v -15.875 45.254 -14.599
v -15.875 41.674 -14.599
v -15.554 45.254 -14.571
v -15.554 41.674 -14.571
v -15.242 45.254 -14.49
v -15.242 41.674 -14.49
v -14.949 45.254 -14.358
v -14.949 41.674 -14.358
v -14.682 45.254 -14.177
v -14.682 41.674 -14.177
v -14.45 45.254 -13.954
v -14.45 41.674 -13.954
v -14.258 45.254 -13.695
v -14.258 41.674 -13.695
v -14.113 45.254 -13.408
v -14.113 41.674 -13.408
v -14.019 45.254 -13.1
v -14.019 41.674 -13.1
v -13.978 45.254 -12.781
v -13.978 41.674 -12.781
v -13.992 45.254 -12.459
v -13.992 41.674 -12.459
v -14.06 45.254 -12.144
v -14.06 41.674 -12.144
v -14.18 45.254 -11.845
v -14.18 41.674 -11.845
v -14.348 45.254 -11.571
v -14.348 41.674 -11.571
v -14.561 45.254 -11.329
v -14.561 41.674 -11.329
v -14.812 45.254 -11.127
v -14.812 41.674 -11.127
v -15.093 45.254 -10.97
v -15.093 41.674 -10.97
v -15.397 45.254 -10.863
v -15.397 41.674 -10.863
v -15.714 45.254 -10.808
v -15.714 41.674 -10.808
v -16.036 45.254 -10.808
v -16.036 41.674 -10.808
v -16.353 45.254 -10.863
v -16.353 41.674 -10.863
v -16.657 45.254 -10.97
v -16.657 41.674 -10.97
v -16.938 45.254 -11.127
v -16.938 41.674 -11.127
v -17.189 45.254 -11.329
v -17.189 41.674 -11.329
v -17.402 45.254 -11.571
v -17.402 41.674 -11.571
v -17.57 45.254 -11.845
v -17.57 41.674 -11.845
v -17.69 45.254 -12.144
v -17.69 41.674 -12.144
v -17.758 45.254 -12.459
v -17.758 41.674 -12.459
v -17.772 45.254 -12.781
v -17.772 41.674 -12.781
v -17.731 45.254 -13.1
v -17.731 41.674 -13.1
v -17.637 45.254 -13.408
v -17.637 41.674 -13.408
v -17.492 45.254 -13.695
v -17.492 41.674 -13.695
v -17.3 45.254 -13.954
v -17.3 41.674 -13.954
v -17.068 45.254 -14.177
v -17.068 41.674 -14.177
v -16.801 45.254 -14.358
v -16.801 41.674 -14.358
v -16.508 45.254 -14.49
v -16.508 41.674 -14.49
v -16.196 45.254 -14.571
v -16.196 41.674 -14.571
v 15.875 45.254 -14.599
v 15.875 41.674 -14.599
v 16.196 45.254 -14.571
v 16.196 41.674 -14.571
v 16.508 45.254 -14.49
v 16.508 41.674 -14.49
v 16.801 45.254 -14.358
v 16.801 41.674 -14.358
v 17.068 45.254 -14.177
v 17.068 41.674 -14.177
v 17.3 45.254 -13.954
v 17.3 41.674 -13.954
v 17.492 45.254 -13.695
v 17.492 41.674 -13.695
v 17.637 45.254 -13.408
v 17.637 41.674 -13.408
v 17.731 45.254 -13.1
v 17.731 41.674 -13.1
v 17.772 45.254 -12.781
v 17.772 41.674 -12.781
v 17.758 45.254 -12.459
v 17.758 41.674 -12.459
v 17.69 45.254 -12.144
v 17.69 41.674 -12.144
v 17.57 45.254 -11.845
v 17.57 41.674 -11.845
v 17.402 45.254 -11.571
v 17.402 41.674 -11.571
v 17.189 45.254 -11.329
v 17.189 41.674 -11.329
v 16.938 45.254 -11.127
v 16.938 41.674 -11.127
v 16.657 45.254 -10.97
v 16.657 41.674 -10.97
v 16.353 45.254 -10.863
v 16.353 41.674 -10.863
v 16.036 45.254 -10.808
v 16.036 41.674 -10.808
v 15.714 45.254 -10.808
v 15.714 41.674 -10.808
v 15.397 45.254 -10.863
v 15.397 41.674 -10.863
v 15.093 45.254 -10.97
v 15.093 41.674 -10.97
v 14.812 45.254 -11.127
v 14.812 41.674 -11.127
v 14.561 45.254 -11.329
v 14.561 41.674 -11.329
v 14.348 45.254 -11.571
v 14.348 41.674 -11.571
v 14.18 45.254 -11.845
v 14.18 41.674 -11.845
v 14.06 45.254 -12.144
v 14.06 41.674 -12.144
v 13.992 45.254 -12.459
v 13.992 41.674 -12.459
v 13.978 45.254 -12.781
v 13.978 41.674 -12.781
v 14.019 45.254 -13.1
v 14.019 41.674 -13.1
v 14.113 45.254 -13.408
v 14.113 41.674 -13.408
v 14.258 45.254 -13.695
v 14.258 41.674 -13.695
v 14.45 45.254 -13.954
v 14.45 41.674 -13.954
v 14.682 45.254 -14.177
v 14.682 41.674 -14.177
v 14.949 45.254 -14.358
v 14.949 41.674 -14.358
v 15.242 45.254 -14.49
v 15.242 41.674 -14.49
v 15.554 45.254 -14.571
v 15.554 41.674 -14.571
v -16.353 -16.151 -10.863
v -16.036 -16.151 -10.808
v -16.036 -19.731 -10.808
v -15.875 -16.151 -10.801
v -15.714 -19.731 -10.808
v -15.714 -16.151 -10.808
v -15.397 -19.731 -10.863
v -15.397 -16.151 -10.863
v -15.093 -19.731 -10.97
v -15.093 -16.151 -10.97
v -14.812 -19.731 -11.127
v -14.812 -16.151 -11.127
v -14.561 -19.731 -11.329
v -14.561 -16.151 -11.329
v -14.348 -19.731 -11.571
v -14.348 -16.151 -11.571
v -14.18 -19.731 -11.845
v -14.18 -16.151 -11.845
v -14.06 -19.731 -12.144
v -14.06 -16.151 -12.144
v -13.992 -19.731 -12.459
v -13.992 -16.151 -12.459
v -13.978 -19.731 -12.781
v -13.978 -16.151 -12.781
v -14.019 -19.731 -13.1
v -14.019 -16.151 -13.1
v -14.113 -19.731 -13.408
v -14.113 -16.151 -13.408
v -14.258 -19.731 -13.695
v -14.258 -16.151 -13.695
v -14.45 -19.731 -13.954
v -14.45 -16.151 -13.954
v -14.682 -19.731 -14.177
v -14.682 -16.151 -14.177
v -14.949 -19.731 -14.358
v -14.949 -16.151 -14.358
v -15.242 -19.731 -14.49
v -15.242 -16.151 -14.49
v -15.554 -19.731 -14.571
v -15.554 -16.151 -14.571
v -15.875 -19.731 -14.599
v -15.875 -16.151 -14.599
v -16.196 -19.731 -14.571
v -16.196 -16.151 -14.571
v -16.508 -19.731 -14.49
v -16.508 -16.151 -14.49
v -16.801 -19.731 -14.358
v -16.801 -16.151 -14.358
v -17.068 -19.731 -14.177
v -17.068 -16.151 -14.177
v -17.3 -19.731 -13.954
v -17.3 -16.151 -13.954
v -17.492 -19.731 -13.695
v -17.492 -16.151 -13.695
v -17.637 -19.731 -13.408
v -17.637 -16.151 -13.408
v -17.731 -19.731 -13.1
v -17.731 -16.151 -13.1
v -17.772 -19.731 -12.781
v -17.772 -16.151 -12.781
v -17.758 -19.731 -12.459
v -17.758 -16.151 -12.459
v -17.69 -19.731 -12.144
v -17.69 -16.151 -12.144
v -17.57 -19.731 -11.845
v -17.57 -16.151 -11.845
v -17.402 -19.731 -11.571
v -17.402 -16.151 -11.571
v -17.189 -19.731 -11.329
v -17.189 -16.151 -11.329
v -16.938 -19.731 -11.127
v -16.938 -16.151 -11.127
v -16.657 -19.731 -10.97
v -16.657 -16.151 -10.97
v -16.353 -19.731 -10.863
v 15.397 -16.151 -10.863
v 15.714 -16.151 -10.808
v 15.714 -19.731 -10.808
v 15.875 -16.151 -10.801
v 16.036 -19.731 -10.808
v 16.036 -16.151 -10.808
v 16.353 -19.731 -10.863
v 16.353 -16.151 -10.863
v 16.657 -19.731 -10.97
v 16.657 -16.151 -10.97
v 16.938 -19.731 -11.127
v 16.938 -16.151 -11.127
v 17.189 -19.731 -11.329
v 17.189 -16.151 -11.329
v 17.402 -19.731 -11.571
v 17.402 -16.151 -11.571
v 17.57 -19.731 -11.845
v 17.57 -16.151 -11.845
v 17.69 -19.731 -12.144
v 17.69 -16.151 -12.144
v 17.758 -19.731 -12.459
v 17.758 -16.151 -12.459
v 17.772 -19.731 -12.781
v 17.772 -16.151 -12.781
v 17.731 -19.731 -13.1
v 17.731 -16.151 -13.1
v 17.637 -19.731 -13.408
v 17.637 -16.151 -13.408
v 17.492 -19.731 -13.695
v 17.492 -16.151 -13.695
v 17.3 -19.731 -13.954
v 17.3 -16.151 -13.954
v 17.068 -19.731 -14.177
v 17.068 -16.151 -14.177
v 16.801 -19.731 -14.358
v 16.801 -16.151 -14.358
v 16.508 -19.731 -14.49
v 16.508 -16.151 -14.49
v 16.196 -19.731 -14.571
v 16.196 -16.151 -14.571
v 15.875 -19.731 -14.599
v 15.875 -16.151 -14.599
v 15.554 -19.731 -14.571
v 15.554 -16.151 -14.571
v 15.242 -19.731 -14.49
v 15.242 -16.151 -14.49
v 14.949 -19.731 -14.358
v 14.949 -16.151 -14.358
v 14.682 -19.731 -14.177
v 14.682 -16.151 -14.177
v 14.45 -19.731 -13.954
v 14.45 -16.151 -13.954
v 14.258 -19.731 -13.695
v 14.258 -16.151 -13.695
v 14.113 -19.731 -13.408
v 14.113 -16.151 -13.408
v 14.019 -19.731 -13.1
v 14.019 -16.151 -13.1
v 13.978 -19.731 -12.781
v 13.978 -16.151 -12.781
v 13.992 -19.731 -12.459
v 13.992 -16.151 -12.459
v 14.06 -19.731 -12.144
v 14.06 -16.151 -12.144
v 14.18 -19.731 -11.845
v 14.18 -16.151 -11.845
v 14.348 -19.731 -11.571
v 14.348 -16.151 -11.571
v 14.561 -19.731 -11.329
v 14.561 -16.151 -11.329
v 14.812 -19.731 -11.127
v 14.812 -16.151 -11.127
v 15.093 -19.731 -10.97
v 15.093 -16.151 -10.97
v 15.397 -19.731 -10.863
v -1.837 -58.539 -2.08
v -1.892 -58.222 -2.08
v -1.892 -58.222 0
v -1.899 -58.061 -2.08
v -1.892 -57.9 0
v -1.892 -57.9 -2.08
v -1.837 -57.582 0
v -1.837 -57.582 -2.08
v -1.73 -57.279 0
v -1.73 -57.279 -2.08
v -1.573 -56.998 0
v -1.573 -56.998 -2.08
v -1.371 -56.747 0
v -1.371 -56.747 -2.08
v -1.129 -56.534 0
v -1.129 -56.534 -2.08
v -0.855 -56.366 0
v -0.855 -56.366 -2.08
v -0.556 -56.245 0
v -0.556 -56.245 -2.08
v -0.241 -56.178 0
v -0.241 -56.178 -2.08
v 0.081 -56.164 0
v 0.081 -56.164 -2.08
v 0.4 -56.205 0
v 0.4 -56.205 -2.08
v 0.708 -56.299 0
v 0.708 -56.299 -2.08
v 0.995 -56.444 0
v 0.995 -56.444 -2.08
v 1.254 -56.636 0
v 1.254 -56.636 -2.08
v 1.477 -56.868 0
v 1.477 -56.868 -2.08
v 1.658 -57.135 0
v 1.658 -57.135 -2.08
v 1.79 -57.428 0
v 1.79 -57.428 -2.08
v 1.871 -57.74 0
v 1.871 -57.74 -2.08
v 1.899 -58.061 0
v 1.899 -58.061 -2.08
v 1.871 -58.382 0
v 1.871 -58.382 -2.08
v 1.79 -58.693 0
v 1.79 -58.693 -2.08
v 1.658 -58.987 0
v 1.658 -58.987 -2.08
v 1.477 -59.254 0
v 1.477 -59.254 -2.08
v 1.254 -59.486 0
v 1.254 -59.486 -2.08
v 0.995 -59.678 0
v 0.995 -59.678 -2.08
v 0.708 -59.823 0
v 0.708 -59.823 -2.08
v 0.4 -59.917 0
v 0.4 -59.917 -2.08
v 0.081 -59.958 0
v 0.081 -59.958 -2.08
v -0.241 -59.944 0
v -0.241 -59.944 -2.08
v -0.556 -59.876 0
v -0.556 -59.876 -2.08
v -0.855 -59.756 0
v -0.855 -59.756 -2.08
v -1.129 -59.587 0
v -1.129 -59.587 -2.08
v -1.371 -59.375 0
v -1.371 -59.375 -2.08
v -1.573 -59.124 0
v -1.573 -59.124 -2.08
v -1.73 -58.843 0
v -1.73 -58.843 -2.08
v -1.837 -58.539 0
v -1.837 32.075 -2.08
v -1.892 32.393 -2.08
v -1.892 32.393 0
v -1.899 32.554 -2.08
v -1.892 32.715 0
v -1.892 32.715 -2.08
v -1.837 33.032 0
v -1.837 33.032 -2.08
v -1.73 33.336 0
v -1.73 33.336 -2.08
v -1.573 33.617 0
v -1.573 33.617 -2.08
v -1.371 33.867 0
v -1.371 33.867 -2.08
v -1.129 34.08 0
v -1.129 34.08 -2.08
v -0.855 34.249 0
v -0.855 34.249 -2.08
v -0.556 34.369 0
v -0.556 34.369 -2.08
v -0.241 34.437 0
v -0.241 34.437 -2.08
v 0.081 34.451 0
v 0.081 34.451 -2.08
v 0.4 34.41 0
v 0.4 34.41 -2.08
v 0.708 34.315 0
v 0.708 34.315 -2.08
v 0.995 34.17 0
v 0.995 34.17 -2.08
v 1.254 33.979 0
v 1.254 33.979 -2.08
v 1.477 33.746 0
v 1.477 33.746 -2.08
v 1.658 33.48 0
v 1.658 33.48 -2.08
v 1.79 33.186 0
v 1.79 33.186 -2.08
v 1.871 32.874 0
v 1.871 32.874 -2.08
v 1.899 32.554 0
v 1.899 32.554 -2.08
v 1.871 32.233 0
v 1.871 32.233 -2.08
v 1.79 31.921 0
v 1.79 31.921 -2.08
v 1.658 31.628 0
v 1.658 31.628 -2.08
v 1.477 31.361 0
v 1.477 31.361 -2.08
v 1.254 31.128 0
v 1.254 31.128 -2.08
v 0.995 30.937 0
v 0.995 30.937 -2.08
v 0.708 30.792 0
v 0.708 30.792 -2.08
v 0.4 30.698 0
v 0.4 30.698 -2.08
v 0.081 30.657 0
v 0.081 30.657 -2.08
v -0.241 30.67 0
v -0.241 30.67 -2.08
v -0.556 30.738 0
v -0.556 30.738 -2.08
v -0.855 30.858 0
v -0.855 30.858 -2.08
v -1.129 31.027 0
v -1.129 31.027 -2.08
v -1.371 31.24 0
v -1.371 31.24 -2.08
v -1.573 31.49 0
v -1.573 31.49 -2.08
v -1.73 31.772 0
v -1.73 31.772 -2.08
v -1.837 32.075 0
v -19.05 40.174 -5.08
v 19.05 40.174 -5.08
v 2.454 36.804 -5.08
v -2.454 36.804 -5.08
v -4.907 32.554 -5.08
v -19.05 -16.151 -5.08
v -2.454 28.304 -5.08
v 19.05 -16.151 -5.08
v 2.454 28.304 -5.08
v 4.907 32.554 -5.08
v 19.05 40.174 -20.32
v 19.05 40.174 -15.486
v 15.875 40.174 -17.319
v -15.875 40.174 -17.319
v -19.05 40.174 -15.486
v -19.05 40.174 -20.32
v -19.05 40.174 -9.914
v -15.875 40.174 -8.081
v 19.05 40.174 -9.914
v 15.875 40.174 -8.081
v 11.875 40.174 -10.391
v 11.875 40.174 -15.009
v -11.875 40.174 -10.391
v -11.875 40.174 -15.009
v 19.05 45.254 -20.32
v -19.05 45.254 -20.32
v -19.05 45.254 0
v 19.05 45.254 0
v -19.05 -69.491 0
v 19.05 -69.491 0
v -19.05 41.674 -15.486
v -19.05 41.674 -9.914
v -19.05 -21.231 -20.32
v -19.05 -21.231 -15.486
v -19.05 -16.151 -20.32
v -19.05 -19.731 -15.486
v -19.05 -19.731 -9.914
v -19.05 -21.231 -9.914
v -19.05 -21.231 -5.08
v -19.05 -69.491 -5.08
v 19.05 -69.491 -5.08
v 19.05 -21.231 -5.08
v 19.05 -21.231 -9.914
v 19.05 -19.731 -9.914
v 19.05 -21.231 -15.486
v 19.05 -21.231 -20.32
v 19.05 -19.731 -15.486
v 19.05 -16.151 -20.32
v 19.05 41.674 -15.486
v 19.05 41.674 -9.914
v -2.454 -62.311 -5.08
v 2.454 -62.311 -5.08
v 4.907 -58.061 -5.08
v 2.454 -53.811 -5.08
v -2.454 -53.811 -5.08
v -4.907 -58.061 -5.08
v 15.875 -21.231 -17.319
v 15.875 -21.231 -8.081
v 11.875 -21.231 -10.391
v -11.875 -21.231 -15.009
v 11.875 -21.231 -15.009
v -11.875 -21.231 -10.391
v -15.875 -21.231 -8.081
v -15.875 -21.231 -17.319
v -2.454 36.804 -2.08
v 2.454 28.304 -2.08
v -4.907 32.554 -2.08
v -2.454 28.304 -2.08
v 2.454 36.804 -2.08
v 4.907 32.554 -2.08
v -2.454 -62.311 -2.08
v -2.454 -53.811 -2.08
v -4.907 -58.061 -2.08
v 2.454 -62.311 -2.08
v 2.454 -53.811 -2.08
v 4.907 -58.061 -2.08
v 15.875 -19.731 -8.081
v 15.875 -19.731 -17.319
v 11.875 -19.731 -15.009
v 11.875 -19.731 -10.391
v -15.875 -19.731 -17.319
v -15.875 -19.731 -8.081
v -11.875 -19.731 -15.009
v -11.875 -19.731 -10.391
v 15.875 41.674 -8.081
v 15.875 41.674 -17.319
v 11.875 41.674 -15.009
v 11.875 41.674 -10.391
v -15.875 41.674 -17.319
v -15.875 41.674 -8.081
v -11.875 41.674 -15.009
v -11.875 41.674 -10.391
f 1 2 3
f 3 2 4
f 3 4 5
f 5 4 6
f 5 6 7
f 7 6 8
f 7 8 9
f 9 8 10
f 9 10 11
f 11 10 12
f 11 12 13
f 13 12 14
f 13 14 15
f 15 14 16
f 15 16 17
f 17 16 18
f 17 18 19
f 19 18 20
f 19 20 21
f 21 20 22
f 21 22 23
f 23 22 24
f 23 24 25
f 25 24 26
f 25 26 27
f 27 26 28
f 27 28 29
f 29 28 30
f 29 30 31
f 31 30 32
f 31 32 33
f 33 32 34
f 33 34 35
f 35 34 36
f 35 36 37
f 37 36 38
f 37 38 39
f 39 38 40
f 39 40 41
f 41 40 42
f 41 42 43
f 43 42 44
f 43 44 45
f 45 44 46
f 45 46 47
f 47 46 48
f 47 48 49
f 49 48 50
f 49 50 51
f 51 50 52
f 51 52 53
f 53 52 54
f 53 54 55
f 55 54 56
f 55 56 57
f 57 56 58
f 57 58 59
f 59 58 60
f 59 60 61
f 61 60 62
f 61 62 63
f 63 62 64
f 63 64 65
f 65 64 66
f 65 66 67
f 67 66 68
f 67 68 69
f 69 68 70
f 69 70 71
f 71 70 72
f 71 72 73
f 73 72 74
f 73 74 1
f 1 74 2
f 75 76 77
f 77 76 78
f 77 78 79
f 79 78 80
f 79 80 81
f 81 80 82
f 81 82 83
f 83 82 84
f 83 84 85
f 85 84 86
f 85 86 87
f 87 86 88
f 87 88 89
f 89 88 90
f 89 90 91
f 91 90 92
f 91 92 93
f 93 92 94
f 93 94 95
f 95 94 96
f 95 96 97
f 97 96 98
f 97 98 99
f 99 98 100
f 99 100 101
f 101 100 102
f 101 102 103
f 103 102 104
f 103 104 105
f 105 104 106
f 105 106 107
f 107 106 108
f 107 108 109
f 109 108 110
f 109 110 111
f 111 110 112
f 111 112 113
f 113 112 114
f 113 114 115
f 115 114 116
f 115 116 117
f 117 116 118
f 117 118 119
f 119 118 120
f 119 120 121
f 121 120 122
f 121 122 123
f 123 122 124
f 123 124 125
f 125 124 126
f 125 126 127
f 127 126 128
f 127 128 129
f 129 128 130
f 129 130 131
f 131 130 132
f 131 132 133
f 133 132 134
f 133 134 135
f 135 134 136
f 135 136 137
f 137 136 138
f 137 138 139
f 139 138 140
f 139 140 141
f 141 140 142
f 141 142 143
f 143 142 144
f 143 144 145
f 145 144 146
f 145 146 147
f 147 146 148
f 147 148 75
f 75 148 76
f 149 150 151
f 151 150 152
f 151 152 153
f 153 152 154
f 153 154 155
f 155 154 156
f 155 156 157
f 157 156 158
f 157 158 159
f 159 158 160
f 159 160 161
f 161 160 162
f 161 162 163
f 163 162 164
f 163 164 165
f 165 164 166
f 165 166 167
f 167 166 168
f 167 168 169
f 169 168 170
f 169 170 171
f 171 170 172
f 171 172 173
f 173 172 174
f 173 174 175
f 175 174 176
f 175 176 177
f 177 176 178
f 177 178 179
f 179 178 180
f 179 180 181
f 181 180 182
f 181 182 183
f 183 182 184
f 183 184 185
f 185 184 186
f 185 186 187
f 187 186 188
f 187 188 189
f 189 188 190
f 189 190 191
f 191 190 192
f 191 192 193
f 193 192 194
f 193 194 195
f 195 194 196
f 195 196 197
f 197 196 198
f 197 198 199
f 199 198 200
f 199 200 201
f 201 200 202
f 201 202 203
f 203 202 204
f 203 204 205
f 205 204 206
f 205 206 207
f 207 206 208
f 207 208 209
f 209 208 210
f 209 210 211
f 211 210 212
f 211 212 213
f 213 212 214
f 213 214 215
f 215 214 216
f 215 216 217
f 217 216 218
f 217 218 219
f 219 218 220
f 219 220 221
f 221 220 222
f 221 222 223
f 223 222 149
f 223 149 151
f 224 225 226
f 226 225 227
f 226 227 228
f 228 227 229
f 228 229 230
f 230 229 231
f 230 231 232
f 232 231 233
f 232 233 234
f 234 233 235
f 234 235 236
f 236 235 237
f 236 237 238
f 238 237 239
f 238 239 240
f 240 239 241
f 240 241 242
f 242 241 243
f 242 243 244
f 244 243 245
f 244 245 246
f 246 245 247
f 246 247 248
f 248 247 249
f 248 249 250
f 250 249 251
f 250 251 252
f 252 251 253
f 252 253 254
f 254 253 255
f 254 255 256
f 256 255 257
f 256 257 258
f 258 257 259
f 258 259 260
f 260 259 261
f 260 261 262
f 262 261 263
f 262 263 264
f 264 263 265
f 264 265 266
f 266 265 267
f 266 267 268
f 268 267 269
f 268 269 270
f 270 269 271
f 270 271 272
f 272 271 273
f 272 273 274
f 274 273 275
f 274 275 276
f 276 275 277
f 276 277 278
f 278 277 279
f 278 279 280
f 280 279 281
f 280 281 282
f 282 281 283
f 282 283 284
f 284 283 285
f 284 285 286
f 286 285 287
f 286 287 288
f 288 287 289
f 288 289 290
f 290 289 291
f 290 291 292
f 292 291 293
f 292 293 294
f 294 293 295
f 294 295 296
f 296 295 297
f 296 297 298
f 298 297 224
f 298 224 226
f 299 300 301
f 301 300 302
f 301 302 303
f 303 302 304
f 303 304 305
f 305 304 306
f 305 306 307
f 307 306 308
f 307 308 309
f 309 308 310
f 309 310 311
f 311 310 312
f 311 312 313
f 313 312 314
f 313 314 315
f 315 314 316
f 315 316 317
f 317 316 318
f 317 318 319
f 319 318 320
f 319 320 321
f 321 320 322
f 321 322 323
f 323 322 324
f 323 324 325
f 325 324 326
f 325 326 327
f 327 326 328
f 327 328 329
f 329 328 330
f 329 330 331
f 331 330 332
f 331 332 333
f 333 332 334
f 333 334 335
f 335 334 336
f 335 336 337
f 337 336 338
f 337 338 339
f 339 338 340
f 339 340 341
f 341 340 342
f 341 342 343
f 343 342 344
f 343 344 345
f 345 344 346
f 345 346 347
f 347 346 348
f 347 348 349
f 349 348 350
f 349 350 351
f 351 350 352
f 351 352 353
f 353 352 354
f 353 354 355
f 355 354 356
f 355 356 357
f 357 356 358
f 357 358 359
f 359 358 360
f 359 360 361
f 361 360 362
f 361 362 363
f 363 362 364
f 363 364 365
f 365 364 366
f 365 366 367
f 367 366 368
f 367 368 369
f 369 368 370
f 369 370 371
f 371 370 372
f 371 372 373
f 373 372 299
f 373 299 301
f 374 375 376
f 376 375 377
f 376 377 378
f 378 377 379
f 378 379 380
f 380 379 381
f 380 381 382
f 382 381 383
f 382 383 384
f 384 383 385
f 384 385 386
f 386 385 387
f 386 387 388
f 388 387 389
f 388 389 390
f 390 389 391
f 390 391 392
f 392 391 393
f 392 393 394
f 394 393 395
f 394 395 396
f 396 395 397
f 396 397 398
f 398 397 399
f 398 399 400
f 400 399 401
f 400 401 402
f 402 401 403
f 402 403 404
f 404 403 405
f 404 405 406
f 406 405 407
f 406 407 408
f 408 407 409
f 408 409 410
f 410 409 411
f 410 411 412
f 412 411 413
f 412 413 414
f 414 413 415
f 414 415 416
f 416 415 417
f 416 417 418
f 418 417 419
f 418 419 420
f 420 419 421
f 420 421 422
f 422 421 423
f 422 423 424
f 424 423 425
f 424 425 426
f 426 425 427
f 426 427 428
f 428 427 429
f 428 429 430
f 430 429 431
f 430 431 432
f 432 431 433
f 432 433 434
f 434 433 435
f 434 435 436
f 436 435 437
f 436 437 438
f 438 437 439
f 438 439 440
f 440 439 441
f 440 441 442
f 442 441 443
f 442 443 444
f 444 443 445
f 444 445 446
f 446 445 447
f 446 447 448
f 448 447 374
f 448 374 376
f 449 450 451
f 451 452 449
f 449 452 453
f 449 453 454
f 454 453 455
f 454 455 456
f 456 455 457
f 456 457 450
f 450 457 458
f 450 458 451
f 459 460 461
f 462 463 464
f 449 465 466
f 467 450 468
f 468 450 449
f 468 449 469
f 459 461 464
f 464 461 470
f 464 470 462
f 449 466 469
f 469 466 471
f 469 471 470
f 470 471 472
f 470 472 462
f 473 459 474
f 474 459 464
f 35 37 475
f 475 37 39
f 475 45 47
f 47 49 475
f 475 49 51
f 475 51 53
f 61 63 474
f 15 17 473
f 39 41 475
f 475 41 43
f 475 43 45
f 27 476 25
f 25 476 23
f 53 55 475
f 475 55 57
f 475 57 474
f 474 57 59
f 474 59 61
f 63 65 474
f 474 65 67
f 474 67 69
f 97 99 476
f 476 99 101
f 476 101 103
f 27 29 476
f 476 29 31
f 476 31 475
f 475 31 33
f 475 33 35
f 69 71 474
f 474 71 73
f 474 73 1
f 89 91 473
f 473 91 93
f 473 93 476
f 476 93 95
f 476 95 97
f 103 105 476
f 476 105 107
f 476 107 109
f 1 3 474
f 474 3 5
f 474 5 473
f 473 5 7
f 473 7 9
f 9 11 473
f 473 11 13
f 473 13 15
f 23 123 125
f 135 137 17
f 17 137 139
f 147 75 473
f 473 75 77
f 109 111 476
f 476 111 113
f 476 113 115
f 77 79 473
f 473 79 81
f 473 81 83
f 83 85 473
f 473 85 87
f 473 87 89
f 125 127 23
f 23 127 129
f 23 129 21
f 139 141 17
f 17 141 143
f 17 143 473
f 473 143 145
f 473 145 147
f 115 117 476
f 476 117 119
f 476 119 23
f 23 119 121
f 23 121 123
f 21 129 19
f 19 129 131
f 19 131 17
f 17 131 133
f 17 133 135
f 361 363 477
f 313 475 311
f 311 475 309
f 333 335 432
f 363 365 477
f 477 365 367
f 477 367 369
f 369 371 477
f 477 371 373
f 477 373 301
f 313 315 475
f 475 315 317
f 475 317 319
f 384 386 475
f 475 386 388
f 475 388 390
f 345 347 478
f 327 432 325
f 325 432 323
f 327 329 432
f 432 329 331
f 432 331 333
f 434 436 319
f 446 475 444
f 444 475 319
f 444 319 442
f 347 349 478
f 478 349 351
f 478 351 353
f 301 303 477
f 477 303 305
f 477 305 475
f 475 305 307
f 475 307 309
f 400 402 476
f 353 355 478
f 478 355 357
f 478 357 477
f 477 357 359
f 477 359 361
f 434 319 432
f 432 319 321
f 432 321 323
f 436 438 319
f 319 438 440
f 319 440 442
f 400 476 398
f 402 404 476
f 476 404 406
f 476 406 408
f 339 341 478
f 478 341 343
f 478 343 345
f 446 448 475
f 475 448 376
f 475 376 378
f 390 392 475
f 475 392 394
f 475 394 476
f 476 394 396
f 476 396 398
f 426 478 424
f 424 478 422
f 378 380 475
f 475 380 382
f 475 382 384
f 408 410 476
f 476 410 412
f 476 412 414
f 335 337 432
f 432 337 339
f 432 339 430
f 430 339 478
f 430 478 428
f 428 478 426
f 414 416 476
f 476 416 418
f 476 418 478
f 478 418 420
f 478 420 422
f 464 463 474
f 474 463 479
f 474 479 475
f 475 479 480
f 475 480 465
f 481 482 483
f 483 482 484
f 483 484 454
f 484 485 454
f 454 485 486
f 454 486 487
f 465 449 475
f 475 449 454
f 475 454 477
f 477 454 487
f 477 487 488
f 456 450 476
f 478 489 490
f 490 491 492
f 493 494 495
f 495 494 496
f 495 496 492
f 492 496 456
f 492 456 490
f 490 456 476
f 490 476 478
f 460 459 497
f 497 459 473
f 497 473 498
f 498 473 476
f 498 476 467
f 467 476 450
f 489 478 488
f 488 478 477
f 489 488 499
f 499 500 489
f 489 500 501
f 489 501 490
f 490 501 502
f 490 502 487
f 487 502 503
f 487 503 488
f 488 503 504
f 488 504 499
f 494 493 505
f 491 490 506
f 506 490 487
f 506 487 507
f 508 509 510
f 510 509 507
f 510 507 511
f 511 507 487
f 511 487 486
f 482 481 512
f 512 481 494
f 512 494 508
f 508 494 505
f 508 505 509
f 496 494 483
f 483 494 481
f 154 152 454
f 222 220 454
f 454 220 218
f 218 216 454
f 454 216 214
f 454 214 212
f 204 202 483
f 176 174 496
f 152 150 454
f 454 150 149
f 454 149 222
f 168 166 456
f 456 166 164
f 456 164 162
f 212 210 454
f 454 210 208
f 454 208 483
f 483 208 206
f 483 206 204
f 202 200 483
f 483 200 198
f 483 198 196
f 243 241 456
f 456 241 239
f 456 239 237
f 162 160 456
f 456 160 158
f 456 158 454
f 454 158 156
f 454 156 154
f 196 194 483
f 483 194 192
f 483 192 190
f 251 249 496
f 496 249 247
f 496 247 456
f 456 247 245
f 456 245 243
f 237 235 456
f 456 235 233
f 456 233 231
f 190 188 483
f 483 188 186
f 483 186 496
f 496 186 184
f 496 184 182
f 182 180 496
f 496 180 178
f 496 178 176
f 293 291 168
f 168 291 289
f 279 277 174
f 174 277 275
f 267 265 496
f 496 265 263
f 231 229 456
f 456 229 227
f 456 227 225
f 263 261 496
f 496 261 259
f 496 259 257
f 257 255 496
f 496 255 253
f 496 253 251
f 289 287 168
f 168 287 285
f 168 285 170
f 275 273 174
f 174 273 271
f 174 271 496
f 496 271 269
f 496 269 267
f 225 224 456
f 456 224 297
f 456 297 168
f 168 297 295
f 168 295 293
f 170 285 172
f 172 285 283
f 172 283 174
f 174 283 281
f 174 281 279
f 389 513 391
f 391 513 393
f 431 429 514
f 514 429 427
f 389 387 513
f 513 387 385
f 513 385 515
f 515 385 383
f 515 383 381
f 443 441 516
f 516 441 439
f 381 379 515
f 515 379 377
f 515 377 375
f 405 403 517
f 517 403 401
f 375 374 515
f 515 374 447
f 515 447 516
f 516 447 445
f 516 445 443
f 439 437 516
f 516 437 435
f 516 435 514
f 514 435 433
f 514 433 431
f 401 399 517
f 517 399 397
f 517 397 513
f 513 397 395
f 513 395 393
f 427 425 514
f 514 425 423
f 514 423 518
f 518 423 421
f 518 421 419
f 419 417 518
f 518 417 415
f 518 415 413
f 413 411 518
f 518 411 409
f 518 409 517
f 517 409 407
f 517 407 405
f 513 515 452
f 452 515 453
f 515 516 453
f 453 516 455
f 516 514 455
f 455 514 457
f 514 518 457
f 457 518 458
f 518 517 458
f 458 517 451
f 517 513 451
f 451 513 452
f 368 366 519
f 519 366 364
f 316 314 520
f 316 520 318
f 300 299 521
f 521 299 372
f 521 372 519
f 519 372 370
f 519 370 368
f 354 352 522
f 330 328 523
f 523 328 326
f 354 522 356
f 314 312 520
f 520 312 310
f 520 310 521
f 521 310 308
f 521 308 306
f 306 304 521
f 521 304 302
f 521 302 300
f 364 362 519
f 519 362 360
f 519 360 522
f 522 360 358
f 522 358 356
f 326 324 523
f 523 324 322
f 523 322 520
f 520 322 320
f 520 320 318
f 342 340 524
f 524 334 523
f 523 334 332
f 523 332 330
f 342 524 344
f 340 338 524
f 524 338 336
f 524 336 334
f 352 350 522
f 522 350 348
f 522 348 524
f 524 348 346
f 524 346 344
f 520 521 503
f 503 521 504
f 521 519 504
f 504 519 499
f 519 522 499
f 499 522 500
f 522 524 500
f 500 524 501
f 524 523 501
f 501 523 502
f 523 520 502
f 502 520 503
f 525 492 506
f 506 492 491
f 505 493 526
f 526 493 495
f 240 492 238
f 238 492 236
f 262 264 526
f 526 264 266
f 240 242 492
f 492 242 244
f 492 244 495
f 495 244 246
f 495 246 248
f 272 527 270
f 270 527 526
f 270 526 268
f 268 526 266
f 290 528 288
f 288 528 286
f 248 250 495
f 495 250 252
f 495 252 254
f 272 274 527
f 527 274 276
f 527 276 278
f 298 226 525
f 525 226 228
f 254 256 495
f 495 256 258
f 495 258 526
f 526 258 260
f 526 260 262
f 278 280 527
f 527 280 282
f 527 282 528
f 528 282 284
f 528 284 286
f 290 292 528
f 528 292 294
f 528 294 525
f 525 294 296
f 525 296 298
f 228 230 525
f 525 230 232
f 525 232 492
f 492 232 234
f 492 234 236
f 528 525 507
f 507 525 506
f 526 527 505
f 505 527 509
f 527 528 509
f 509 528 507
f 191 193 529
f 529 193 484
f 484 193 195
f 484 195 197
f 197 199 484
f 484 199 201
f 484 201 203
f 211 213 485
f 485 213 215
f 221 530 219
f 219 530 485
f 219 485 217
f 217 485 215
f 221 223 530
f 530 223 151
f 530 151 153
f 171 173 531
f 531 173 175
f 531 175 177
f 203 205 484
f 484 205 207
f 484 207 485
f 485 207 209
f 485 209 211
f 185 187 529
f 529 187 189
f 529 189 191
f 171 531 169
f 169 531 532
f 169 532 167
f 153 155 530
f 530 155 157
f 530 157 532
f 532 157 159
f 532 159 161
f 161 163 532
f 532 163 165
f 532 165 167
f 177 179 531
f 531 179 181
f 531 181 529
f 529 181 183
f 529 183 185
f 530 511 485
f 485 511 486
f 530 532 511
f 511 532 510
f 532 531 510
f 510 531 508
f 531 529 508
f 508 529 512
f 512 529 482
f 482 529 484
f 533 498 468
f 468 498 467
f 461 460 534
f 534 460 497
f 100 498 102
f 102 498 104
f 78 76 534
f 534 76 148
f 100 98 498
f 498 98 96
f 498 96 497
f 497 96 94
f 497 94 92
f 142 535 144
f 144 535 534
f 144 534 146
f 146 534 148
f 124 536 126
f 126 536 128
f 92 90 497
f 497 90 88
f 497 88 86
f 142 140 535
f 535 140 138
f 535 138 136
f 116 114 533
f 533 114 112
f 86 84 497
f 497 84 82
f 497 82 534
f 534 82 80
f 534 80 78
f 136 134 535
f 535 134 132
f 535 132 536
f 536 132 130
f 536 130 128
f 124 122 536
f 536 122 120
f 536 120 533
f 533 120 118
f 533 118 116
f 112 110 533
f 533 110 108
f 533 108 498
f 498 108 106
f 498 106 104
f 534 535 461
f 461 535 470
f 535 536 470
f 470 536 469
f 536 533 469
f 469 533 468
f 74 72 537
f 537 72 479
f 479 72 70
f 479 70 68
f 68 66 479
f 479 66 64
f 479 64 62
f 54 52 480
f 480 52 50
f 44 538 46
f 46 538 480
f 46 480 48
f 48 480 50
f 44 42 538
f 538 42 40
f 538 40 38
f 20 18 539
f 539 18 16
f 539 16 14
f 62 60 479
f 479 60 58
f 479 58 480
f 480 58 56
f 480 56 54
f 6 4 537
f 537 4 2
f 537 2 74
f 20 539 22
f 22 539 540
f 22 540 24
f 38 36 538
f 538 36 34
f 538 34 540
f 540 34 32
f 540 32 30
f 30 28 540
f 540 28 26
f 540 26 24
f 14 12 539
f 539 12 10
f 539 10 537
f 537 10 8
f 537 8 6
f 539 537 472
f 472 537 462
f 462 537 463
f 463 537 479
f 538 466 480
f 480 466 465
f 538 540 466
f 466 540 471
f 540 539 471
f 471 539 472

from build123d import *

# Parameters (mm, degrees)
EXTRU_MINCE1_START      = -19.05
EXTRU_MINCE1_DEPTH      = 38.1
ESQUISSE3_R             = 1.89865
ENL_V_MAT_EXTRU_2_DEPTH = 75.865138463
D_GAGEMENT_61_D         = 3.7973
ENL_V_MAT_EXTRU_3_DEPTH = 3
ENL_V_MAT_EXTRU_4_DEPTH = 1.5
ENL_V_MAT_EXTRU_5_DEPTH = 1.5


# Read off the part's stored shape, not the designer's step: Extru.-Mince1
with BuildPart() as part:
    # Extru.-Mince1 outline → Extru.-Mince1 (new body)
    with BuildSketch(Plane(origin=(0, 0, 0), x_dir=(0, 0, -1), z_dir=(1, 0, 0)).offset(EXTRU_MINCE1_START)):
        Polygon((20.32, -16.1508919), (5.08, -16.1508919), (5.08, 40.1736081), (20.32, 40.1736081), (20.32, 45.2536081), (0, 45.2536081), (0, -69.4908919), (5.08, -69.4908919), (5.08, -21.2308919), (20.32, -21.2308919), align=None)
    extrude(amount=EXTRU_MINCE1_DEPTH)

    # Esquisse3 → Enlèv. mat.-Extru.2 (cut, through all)
    with BuildSketch(Plane.XY):
        with Locations((0, -58.0608919)):
            Circle(ESQUISSE3_R)
        with Locations((0, 32.5536081)):
            Circle(ESQUISSE3_R)
    extrude(amount=-ENL_V_MAT_EXTRU_2_DEPTH, mode=Mode.SUBTRACT)

    # Dégagement #61 (through all)
    with Locations(Plane(origin=(0, -21.2308919, 0), x_dir=(-1, 0, 0), z_dir=(0, -1, 0))):
        with Locations((-15.875, 12.7), (15.875, 12.7)):
            Hole(D_GAGEMENT_61_D / 2)

    # Esquisse10 → Enlèv. mat.-Extru.3 (cut)
    with BuildSketch(Plane(origin=(0, 0, -5.08), x_dir=(-1, 0, 0), z_dir=(0, 0, -1))):
        Polygon((2.453738644, 36.8036081), (-2.453738644, 36.8036081), (-4.907477288, 32.5536081), (-2.453738644, 28.3036081), (2.453738644, 28.3036081), (4.907477288, 32.5536081), align=None)
        Polygon((2.453738644, -53.8108919), (-2.453738644, -53.8108919), (-4.907477288, -58.0608919), (-2.453738644, -62.3108919), (2.453738644, -62.3108919), (4.907477288, -58.0608919), align=None)
    extrude(amount=-ENL_V_MAT_EXTRU_3_DEPTH, mode=Mode.SUBTRACT)

    # Esquisse12 → Enlèv. mat.-Extru.4 (cut)
    with BuildSketch(Plane.XZ.offset(21.2308919)):
        Polygon((11.875, -10.390598923), (11.875, -15.009401077), (15.875, -17.318802154), (19.875, -15.009401077), (19.875, -10.390598923), (15.875, -8.081197846), align=None)
        Polygon((-19.875, -10.390598923), (-19.875, -15.009401077), (-15.875, -17.318802154), (-11.875, -15.009401077), (-11.875, -10.390598923), (-15.875, -8.081197846), align=None)
    extrude(amount=-ENL_V_MAT_EXTRU_4_DEPTH, mode=Mode.SUBTRACT)

    # Esquisse13 → Enlèv. mat.-Extru.5 (cut)
    with BuildSketch(Plane.XZ.offset(-40.1736081)):
        Polygon((-11.875, -15.009401077), (-11.875, -10.390598923), (-15.875, -8.081197846), (-19.875, -10.390598923), (-19.875, -15.009401077), (-15.875, -17.318802154), align=None)
        Polygon((15.875, -8.081197846), (11.875, -10.390598923), (11.875, -15.009401077), (15.875, -17.318802154), (19.875, -15.009401077), (19.875, -10.390598923), align=None)
    extrude(amount=-ENL_V_MAT_EXTRU_5_DEPTH, mode=Mode.SUBTRACT)


solid = part.part
